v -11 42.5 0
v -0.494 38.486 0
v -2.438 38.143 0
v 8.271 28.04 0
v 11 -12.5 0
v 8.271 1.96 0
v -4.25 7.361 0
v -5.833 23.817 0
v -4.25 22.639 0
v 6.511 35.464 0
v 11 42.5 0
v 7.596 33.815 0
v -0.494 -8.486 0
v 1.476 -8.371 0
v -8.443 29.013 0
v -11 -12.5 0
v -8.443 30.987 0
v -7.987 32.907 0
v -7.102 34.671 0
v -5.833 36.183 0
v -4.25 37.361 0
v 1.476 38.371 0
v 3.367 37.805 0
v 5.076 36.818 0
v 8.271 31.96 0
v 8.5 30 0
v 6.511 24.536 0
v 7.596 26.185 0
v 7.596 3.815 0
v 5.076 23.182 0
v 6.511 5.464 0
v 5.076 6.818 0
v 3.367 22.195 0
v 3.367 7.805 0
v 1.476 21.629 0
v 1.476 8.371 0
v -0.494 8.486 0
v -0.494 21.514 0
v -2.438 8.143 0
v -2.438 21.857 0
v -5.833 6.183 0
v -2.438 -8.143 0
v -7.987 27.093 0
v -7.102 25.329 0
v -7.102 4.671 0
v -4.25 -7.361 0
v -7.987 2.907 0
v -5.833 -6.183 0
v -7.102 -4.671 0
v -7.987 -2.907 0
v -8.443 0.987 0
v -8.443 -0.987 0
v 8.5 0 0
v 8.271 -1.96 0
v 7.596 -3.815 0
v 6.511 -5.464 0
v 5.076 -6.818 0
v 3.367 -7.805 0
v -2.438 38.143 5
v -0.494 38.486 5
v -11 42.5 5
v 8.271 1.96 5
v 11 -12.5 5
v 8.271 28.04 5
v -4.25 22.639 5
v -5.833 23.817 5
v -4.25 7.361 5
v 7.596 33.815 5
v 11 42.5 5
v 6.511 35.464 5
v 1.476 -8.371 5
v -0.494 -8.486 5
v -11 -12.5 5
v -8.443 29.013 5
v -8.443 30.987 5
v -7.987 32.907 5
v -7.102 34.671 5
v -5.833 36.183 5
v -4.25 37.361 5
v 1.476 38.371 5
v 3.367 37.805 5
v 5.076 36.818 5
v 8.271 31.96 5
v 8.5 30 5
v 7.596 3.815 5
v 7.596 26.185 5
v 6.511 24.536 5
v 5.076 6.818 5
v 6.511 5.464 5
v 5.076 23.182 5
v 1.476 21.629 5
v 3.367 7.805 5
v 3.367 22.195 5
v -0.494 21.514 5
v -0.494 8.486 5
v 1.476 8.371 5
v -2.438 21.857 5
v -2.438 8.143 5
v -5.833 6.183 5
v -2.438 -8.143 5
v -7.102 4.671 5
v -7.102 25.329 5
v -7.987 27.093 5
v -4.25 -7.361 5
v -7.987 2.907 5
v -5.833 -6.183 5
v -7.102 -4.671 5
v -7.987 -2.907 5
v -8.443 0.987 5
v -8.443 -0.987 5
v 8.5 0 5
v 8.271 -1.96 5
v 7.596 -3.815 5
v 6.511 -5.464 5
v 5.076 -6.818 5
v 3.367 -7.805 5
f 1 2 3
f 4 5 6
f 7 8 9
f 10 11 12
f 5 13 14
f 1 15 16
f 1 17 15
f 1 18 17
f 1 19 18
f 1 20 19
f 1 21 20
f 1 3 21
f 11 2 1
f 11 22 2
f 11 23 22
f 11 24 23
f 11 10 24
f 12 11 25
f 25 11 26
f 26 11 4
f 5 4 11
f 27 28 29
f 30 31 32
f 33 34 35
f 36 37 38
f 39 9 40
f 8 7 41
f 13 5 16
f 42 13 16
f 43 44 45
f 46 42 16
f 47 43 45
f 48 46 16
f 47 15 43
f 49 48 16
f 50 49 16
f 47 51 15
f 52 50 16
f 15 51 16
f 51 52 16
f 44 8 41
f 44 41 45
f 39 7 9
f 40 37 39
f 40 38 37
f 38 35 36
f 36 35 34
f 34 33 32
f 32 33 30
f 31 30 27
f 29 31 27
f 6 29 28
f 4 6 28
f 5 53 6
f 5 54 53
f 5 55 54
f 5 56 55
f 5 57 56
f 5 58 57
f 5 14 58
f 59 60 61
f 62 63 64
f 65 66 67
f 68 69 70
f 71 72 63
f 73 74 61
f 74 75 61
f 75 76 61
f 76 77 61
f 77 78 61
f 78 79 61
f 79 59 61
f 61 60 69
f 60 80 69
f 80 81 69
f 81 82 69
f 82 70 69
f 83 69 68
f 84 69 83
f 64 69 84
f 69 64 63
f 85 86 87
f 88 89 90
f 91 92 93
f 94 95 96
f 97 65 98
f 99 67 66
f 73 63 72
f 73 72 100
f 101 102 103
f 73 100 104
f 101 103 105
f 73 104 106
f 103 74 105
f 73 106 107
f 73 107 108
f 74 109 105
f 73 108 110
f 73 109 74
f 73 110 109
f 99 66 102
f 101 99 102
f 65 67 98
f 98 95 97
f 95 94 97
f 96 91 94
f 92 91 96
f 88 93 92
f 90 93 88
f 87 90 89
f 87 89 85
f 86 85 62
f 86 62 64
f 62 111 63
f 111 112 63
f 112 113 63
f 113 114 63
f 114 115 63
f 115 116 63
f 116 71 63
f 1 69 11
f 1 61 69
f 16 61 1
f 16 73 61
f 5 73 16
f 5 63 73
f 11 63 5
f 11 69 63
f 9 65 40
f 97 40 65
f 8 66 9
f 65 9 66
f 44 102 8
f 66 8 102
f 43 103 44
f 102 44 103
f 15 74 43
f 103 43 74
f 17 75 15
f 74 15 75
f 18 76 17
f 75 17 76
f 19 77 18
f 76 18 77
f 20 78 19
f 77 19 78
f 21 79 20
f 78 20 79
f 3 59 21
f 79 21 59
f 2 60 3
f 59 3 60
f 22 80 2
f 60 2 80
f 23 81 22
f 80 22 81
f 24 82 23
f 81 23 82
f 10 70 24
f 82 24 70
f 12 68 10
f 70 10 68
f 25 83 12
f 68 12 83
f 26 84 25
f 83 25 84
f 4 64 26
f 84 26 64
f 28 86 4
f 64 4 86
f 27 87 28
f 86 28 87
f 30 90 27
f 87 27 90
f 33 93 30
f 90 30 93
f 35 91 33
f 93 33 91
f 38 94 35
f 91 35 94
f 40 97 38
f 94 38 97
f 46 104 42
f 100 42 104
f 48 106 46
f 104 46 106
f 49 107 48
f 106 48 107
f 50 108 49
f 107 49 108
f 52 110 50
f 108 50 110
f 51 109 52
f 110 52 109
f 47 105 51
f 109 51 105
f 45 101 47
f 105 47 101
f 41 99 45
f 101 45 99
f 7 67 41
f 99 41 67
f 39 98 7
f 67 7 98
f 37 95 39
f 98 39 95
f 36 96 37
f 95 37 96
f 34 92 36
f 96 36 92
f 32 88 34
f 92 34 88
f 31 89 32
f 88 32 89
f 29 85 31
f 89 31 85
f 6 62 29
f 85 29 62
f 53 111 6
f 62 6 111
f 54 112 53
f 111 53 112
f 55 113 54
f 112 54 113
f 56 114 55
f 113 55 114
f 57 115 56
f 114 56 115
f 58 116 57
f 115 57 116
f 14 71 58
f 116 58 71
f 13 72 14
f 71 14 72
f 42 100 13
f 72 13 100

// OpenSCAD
linear_extrude(5)
difference(){
translate([-(17+5)/2,-12.5,0])

square([17+5,55]);

circle(d=17);
translate([0,30,0])
circle(d=17);
}
